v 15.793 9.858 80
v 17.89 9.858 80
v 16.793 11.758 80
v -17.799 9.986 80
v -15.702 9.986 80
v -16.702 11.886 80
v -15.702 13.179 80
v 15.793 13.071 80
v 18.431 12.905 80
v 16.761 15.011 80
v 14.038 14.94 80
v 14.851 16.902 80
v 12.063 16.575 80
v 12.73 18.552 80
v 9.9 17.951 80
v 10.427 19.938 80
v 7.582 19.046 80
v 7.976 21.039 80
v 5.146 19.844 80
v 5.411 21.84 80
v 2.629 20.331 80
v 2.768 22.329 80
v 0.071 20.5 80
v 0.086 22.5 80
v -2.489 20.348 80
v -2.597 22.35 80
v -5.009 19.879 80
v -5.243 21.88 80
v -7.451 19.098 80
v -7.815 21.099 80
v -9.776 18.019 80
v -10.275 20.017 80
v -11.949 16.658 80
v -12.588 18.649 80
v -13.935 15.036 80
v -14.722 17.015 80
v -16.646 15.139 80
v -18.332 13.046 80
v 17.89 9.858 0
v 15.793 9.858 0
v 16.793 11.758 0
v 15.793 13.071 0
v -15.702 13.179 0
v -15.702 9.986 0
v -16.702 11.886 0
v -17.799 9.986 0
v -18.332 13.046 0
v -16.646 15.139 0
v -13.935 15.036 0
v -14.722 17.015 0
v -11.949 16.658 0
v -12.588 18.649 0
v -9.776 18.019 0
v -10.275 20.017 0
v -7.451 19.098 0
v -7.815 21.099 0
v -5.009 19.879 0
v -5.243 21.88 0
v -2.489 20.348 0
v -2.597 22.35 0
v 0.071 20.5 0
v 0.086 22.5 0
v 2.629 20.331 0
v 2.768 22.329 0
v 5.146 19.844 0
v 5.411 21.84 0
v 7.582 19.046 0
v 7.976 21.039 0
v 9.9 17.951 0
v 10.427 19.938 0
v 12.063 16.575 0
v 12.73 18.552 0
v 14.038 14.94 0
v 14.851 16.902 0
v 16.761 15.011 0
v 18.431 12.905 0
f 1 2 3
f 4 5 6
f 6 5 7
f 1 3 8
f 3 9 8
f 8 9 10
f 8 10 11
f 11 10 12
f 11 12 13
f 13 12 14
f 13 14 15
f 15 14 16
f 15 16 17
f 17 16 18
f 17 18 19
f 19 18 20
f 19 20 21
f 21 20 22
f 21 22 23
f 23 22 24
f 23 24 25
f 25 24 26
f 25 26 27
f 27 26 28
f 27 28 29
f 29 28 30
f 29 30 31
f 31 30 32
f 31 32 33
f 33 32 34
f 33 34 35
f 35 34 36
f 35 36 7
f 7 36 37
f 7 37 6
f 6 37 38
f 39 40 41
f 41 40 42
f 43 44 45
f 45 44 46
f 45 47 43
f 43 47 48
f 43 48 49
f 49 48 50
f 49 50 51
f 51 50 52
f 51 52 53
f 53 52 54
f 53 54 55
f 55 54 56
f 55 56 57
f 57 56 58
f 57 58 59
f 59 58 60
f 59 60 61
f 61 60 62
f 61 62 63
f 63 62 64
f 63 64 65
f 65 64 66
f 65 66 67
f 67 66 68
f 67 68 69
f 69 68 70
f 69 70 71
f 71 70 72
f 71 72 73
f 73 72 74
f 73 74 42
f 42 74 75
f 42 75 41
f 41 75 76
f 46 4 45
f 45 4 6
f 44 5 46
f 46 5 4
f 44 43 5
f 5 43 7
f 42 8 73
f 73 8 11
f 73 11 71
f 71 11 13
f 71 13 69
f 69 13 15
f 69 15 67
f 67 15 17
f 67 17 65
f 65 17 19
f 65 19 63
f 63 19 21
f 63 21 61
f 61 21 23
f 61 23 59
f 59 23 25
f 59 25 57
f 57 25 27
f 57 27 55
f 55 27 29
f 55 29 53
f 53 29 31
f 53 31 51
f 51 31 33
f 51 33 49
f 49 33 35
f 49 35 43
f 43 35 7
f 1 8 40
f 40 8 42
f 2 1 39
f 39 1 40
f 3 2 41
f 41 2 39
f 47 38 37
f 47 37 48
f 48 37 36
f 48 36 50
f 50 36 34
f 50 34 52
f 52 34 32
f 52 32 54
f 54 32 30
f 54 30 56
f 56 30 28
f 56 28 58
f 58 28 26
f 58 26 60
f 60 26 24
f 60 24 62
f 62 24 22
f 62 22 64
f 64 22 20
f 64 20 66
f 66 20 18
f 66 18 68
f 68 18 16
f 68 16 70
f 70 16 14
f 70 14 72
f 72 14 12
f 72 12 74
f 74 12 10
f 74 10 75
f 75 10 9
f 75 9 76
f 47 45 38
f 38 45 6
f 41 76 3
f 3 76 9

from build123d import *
from build123d.topology import SkipClean

# Parameters (mm, degrees)
SKETCH1_R           = 22.5
SKETCH1_R_2         = 20.5
BOSS_EXTRUDE1_DEPTH = 80
SKETCH2_W           = 45
SKETCH2_H           = 22.5
CUT_EXTRUDE1_DEPTH  = 87.095876789
SKETCH4_W           = 4.401808348
SKETCH4_H           = 1
SKETCH4_W_2         = 1
SKETCH4_H_2         = 3
BOSS_EXTRUDE2_DEPTH = 80
BOSS_EXTRUDE3_START = -80
BOSS_EXTRUDE3_DEPTH = 80
CUT_EXTRUDE2_DEPTH  = 87.095876789


with BuildPart() as part:
    # Sketch1 → Boss-Extrude1 (new body)
    with BuildSketch(Plane.XY):
        Circle(SKETCH1_R)
        Circle(SKETCH1_R_2, mode=Mode.SUBTRACT)
    extrude(amount=BOSS_EXTRUDE1_DEPTH)

    # Sketch2 → Cut-Extrude1 (cut, through all)
    with BuildSketch(Plane.XY.offset(80)):
        with Locations((0, 11.25)):
            Rectangle(SKETCH2_W, SKETCH2_H)
    extrude(amount=-CUT_EXTRUDE1_DEPTH, mode=Mode.SUBTRACT)


with BuildPart() as body_2:
    # Sketch4 → Boss-Extrude2 (new body)
    with BuildSketch(Plane.XY.offset(80)):
        with BuildLine():
            ThreePointArc((22.5, 0), (21.654908627, 6.108594957), (19.183117125, 11.758316945))
            Line((19.183117125, 11.758316945), (19.183117125, 8.758316945))
            Line((19.183117125, 8.758316945), (18.534882905, 8.758316945))
            ThreePointArc((18.534882905, 8.758316945), (20.002688564, 4.488034116), (20.5, 0))
            Line((20.5, 0), (22.5, 0))
        make_face()
        Polygon((16.792616908, 11.758316945), (18.430920997, 12.905469818), (19.183117125, 11.758316945), align=None)
        with BuildLine():
            Line((19.183117125, 8.758316945), (19.183117125, 11.758316945))
            Line((19.183117125, 11.758316945), (16.792616908, 11.758316945))
            ThreePointArc((16.792616908, 11.758316945), (17.439231391, 10.776047906), (18.028456684, 9.758316945))
            ThreePointArc((18.028456684, 9.758316945), (18.288505966, 9.261778962), (18.534882905, 8.758316945))
            Line((18.534882905, 8.758316945), (19.183117125, 8.758316945))
        make_face()
        with BuildLine():
            Line((15.792616908, 9.758316945), (15.792616908, 11.758316945))
            Line((15.792616908, 11.758316945), (14.792616908, 11.758316945))
            Line((14.792616908, 11.758316945), (14.792616908, 8.758316945))
            Line((14.792616908, 8.758316945), (18.534882905, 8.758316945))
            ThreePointArc((18.534882905, 8.758316945), (18.288505966, 9.261778962), (18.028456684, 9.758316945))
            Line((18.028456684, 9.758316945), (15.792616908, 9.758316945))
        make_face()
        with BuildLine():
            Line((-16.702272837, 11.886298081), (-18.340620511, 13.033481472))
            ThreePointArc((-18.340620511, 13.033481472), (-21.43494765, 6.840542322), (-22.5, 0))
            Line((-22.5, 0), (-20.5, 0))
            ThreePointArc((-20.5, 0), (-19.527501033, 6.239126815), (-16.702272837, 11.886298081))
        make_face()
        with Locations((-16.903177011, 9.386298081)):
            Rectangle(SKETCH4_W, SKETCH4_H)
        with Locations((-15.202272837, 10.386298081)):
            Rectangle(SKETCH4_W_2, SKETCH4_H_2)
    extrude(amount=-BOSS_EXTRUDE2_DEPTH)

    # Sketch5 → Boss-Extrude3 (add)
    with SkipClean():  # the faces are left unmerged after this step: merging them gives an invalid solid
        with BuildSketch(Plane.XY.offset(80).offset(BOSS_EXTRUDE3_START)):
            with BuildLine():
                Line((16.792616908, 14.391966981), (16.792616908, 11.758316945))
                Line((16.792616908, 11.758316945), (18.430920997, 12.905469818))
                ThreePointArc((18.430920997, 12.905469818), (0.078328094, 22.49986366), (-18.340620511, 13.033481472))
                Line((-18.340620511, 13.033481472), (-16.702272837, 11.886298081))
                Line((-16.702272837, 11.886298081), (-16.702272837, 13.843152405))
                Line((-16.702272837, 13.843152405), (-15.702272837, 13.843152405))
                Line((-15.702272837, 13.843152405), (-15.702272837, 13.179098139))
                ThreePointArc((-15.702272837, 13.179098139), (0.070554536, 20.499878586), (15.792616908, 13.070702016))
                Line((15.792616908, 13.070702016), (15.792616908, 14.391966981))
                Line((15.792616908, 14.391966981), (16.792616908, 14.391966981))
            make_face()
            with BuildLine():
                Line((15.792616908, 11.758316945), (16.792616908, 11.758316945))
                ThreePointArc((16.792616908, 11.758316945), (16.30582578, 12.424574264), (15.792616908, 13.070702016))
                Line((15.792616908, 13.070702016), (15.792616908, 11.758316945))
            make_face()
            with BuildLine():
                ThreePointArc((15.792616908, 13.070702016), (16.30582578, 12.424574264), (16.792616908, 11.758316945))
                Line((16.792616908, 11.758316945), (16.792616908, 14.391966981))
                Line((16.792616908, 14.391966981), (15.792616908, 14.391966981))
                Line((15.792616908, 14.391966981), (15.792616908, 13.070702016))
            make_face()
            Polygon((17.889582419, 9.858316945), (16.792616908, 11.758316945), (15.792616908, 11.758316945), (15.792616908, 9.858316945), align=None)
            Polygon((-15.702272837, 11.886298081), (-15.702272837, 9.986298081), (-17.799238349, 9.986298081), (-16.702272837, 11.886298081), align=None)
            with BuildLine():
                Line((-15.702272837, 11.886298081), (-15.702272837, 13.179098139))
                ThreePointArc((-15.702272837, 13.179098139), (-16.215161982, 12.542668054), (-16.702272837, 11.886298081))
                Line((-16.702272837, 11.886298081), (-15.702272837, 11.886298081))
            make_face()
            with BuildLine():
                ThreePointArc((-16.702272837, 11.886298081), (-16.215161982, 12.542668054), (-15.702272837, 13.179098139))
                Line((-15.702272837, 13.179098139), (-15.702272837, 13.843152405))
                Line((-15.702272837, 13.843152405), (-16.702272837, 13.843152405))
                Line((-16.702272837, 13.843152405), (-16.702272837, 11.886298081))
            make_face()
        extrude(amount=BOSS_EXTRUDE3_DEPTH)


with BuildPart() as cut_extrude2_tool:
    # Sketch6 → Cut-Extrude2 (new, through all)
    with BuildSketch(Plane.XY.offset(80)):
        with BuildLine():
            Line((-22.5, 0), (-20.5, 0))
            ThreePointArc((-20.5, 0), (-19.98704884, 4.557178804), (-18.473865497, 8.886298081))
            Line((-18.473865497, 8.886298081), (-19.42662195, 8.886298081))
            Line((-19.42662195, 8.886298081), (-19.42662195, 9.886298081))
            Line((-19.42662195, 9.886298081), (-17.958594328, 9.886298081))
            ThreePointArc((-17.958594328, 9.886298081), (-17.359260588, 10.904406074), (-16.702272837, 11.886298081))
            Line((-16.702272837, 11.886298081), (-18.33176287, 13.045936918))
            ThreePointArc((-18.33176287, 13.045936918), (-21.432623085, 6.847822114), (-22.5, 0))
        make_face()
        with BuildLine():
            Line((22.5, 0), (20.5, 0))
            ThreePointArc((20.5, 0), (0, -20.5), (-20.5, 0))
            Line((-20.5, 0), (-22.5, 0))
            ThreePointArc((-22.5, 0), (0, -22.5), (22.5, 0))
        make_face()
        with BuildLine():
            Line((-19.42662195, 8.886298081), (-18.473865497, 8.886298081))
            ThreePointArc((-18.473865497, 8.886298081), (-18.223090634, 9.389833213), (-17.958594328, 9.886298081))
            Line((-17.958594328, 9.886298081), (-19.42662195, 9.886298081))
            Line((-19.42662195, 9.886298081), (-19.42662195, 8.886298081))
        make_face()
        with BuildLine():
            ThreePointArc((-17.958594328, 9.886298081), (-18.223090634, 9.389833213), (-18.473865497, 8.886298081))
            Line((-18.473865497, 8.886298081), (-15.702272837, 8.886298081))
            Line((-15.702272837, 8.886298081), (-15.702272837, 9.886298081))
            Line((-15.702272837, 9.886298081), (-17.958594328, 9.886298081))
        make_face()
        Polygon((-15.702272837, 9.886298081), (-15.702272837, 8.886298081), (-14.702272837, 8.886298081), (-14.702272837, 11.886298081), (-15.702272837, 11.886298081), (-15.702272837, 9.986298081), align=None)
        Polygon((15.792616908, 11.758316945), (14.792616908, 11.758316945), (14.792616908, 8.758316945), (15.792616908, 8.758316945), (15.792616908, 9.758316945), (15.792616908, 9.858316945), align=None)
        with BuildLine():
            Line((15.792616908, 9.758316945), (15.792616908, 8.758316945))
            Line((15.792616908, 8.758316945), (18.534882905, 8.758316945))
            ThreePointArc((18.534882905, 8.758316945), (18.288505966, 9.261778962), (18.028456684, 9.758316945))
            Line((18.028456684, 9.758316945), (15.792616908, 9.758316945))
        make_face()
        with BuildLine():
            ThreePointArc((18.028456684, 9.758316945), (18.288505966, 9.261778962), (18.534882905, 8.758316945))
            Line((18.534882905, 8.758316945), (19.161355292, 8.758316945))
            Line((19.161355292, 8.758316945), (19.161355292, 9.758316945))
            Line((19.161355292, 9.758316945), (18.028456684, 9.758316945))
        make_face()
        with BuildLine():
            Line((19.161355292, 8.758316945), (18.534882905, 8.758316945))
            ThreePointArc((18.534882905, 8.758316945), (20.002688564, 4.488034116), (20.5, 0))
            Line((20.5, 0), (22.5, 0))
            ThreePointArc((22.5, 0), (21.654908627, 6.108594957), (19.183117125, 11.758316945))
            Line((19.183117125, 11.758316945), (18.430920997, 12.905469818))
            Line((18.430920997, 12.905469818), (16.792616908, 11.758316945))
            ThreePointArc((16.792616908, 11.758316945), (17.439231391, 10.776047906), (18.028456684, 9.758316945))
            Line((18.028456684, 9.758316945), (19.161355292, 9.758316945))
            Line((19.161355292, 9.758316945), (19.161355292, 8.758316945))
        make_face()
    extrude(amount=-CUT_EXTRUDE2_DEPTH)


with BuildPart() as part_1:
    add(part.part)

    # Cut-Extrude2: cut by cut_extrude2_tool
    add(cut_extrude2_tool.part, mode=Mode.SUBTRACT)


with BuildPart() as body_2_1:
    add(body_2.part)

    # Cut-Extrude2: cut by cut_extrude2_tool
    add(cut_extrude2_tool.part, mode=Mode.SUBTRACT)


solid = body_2_1.part
